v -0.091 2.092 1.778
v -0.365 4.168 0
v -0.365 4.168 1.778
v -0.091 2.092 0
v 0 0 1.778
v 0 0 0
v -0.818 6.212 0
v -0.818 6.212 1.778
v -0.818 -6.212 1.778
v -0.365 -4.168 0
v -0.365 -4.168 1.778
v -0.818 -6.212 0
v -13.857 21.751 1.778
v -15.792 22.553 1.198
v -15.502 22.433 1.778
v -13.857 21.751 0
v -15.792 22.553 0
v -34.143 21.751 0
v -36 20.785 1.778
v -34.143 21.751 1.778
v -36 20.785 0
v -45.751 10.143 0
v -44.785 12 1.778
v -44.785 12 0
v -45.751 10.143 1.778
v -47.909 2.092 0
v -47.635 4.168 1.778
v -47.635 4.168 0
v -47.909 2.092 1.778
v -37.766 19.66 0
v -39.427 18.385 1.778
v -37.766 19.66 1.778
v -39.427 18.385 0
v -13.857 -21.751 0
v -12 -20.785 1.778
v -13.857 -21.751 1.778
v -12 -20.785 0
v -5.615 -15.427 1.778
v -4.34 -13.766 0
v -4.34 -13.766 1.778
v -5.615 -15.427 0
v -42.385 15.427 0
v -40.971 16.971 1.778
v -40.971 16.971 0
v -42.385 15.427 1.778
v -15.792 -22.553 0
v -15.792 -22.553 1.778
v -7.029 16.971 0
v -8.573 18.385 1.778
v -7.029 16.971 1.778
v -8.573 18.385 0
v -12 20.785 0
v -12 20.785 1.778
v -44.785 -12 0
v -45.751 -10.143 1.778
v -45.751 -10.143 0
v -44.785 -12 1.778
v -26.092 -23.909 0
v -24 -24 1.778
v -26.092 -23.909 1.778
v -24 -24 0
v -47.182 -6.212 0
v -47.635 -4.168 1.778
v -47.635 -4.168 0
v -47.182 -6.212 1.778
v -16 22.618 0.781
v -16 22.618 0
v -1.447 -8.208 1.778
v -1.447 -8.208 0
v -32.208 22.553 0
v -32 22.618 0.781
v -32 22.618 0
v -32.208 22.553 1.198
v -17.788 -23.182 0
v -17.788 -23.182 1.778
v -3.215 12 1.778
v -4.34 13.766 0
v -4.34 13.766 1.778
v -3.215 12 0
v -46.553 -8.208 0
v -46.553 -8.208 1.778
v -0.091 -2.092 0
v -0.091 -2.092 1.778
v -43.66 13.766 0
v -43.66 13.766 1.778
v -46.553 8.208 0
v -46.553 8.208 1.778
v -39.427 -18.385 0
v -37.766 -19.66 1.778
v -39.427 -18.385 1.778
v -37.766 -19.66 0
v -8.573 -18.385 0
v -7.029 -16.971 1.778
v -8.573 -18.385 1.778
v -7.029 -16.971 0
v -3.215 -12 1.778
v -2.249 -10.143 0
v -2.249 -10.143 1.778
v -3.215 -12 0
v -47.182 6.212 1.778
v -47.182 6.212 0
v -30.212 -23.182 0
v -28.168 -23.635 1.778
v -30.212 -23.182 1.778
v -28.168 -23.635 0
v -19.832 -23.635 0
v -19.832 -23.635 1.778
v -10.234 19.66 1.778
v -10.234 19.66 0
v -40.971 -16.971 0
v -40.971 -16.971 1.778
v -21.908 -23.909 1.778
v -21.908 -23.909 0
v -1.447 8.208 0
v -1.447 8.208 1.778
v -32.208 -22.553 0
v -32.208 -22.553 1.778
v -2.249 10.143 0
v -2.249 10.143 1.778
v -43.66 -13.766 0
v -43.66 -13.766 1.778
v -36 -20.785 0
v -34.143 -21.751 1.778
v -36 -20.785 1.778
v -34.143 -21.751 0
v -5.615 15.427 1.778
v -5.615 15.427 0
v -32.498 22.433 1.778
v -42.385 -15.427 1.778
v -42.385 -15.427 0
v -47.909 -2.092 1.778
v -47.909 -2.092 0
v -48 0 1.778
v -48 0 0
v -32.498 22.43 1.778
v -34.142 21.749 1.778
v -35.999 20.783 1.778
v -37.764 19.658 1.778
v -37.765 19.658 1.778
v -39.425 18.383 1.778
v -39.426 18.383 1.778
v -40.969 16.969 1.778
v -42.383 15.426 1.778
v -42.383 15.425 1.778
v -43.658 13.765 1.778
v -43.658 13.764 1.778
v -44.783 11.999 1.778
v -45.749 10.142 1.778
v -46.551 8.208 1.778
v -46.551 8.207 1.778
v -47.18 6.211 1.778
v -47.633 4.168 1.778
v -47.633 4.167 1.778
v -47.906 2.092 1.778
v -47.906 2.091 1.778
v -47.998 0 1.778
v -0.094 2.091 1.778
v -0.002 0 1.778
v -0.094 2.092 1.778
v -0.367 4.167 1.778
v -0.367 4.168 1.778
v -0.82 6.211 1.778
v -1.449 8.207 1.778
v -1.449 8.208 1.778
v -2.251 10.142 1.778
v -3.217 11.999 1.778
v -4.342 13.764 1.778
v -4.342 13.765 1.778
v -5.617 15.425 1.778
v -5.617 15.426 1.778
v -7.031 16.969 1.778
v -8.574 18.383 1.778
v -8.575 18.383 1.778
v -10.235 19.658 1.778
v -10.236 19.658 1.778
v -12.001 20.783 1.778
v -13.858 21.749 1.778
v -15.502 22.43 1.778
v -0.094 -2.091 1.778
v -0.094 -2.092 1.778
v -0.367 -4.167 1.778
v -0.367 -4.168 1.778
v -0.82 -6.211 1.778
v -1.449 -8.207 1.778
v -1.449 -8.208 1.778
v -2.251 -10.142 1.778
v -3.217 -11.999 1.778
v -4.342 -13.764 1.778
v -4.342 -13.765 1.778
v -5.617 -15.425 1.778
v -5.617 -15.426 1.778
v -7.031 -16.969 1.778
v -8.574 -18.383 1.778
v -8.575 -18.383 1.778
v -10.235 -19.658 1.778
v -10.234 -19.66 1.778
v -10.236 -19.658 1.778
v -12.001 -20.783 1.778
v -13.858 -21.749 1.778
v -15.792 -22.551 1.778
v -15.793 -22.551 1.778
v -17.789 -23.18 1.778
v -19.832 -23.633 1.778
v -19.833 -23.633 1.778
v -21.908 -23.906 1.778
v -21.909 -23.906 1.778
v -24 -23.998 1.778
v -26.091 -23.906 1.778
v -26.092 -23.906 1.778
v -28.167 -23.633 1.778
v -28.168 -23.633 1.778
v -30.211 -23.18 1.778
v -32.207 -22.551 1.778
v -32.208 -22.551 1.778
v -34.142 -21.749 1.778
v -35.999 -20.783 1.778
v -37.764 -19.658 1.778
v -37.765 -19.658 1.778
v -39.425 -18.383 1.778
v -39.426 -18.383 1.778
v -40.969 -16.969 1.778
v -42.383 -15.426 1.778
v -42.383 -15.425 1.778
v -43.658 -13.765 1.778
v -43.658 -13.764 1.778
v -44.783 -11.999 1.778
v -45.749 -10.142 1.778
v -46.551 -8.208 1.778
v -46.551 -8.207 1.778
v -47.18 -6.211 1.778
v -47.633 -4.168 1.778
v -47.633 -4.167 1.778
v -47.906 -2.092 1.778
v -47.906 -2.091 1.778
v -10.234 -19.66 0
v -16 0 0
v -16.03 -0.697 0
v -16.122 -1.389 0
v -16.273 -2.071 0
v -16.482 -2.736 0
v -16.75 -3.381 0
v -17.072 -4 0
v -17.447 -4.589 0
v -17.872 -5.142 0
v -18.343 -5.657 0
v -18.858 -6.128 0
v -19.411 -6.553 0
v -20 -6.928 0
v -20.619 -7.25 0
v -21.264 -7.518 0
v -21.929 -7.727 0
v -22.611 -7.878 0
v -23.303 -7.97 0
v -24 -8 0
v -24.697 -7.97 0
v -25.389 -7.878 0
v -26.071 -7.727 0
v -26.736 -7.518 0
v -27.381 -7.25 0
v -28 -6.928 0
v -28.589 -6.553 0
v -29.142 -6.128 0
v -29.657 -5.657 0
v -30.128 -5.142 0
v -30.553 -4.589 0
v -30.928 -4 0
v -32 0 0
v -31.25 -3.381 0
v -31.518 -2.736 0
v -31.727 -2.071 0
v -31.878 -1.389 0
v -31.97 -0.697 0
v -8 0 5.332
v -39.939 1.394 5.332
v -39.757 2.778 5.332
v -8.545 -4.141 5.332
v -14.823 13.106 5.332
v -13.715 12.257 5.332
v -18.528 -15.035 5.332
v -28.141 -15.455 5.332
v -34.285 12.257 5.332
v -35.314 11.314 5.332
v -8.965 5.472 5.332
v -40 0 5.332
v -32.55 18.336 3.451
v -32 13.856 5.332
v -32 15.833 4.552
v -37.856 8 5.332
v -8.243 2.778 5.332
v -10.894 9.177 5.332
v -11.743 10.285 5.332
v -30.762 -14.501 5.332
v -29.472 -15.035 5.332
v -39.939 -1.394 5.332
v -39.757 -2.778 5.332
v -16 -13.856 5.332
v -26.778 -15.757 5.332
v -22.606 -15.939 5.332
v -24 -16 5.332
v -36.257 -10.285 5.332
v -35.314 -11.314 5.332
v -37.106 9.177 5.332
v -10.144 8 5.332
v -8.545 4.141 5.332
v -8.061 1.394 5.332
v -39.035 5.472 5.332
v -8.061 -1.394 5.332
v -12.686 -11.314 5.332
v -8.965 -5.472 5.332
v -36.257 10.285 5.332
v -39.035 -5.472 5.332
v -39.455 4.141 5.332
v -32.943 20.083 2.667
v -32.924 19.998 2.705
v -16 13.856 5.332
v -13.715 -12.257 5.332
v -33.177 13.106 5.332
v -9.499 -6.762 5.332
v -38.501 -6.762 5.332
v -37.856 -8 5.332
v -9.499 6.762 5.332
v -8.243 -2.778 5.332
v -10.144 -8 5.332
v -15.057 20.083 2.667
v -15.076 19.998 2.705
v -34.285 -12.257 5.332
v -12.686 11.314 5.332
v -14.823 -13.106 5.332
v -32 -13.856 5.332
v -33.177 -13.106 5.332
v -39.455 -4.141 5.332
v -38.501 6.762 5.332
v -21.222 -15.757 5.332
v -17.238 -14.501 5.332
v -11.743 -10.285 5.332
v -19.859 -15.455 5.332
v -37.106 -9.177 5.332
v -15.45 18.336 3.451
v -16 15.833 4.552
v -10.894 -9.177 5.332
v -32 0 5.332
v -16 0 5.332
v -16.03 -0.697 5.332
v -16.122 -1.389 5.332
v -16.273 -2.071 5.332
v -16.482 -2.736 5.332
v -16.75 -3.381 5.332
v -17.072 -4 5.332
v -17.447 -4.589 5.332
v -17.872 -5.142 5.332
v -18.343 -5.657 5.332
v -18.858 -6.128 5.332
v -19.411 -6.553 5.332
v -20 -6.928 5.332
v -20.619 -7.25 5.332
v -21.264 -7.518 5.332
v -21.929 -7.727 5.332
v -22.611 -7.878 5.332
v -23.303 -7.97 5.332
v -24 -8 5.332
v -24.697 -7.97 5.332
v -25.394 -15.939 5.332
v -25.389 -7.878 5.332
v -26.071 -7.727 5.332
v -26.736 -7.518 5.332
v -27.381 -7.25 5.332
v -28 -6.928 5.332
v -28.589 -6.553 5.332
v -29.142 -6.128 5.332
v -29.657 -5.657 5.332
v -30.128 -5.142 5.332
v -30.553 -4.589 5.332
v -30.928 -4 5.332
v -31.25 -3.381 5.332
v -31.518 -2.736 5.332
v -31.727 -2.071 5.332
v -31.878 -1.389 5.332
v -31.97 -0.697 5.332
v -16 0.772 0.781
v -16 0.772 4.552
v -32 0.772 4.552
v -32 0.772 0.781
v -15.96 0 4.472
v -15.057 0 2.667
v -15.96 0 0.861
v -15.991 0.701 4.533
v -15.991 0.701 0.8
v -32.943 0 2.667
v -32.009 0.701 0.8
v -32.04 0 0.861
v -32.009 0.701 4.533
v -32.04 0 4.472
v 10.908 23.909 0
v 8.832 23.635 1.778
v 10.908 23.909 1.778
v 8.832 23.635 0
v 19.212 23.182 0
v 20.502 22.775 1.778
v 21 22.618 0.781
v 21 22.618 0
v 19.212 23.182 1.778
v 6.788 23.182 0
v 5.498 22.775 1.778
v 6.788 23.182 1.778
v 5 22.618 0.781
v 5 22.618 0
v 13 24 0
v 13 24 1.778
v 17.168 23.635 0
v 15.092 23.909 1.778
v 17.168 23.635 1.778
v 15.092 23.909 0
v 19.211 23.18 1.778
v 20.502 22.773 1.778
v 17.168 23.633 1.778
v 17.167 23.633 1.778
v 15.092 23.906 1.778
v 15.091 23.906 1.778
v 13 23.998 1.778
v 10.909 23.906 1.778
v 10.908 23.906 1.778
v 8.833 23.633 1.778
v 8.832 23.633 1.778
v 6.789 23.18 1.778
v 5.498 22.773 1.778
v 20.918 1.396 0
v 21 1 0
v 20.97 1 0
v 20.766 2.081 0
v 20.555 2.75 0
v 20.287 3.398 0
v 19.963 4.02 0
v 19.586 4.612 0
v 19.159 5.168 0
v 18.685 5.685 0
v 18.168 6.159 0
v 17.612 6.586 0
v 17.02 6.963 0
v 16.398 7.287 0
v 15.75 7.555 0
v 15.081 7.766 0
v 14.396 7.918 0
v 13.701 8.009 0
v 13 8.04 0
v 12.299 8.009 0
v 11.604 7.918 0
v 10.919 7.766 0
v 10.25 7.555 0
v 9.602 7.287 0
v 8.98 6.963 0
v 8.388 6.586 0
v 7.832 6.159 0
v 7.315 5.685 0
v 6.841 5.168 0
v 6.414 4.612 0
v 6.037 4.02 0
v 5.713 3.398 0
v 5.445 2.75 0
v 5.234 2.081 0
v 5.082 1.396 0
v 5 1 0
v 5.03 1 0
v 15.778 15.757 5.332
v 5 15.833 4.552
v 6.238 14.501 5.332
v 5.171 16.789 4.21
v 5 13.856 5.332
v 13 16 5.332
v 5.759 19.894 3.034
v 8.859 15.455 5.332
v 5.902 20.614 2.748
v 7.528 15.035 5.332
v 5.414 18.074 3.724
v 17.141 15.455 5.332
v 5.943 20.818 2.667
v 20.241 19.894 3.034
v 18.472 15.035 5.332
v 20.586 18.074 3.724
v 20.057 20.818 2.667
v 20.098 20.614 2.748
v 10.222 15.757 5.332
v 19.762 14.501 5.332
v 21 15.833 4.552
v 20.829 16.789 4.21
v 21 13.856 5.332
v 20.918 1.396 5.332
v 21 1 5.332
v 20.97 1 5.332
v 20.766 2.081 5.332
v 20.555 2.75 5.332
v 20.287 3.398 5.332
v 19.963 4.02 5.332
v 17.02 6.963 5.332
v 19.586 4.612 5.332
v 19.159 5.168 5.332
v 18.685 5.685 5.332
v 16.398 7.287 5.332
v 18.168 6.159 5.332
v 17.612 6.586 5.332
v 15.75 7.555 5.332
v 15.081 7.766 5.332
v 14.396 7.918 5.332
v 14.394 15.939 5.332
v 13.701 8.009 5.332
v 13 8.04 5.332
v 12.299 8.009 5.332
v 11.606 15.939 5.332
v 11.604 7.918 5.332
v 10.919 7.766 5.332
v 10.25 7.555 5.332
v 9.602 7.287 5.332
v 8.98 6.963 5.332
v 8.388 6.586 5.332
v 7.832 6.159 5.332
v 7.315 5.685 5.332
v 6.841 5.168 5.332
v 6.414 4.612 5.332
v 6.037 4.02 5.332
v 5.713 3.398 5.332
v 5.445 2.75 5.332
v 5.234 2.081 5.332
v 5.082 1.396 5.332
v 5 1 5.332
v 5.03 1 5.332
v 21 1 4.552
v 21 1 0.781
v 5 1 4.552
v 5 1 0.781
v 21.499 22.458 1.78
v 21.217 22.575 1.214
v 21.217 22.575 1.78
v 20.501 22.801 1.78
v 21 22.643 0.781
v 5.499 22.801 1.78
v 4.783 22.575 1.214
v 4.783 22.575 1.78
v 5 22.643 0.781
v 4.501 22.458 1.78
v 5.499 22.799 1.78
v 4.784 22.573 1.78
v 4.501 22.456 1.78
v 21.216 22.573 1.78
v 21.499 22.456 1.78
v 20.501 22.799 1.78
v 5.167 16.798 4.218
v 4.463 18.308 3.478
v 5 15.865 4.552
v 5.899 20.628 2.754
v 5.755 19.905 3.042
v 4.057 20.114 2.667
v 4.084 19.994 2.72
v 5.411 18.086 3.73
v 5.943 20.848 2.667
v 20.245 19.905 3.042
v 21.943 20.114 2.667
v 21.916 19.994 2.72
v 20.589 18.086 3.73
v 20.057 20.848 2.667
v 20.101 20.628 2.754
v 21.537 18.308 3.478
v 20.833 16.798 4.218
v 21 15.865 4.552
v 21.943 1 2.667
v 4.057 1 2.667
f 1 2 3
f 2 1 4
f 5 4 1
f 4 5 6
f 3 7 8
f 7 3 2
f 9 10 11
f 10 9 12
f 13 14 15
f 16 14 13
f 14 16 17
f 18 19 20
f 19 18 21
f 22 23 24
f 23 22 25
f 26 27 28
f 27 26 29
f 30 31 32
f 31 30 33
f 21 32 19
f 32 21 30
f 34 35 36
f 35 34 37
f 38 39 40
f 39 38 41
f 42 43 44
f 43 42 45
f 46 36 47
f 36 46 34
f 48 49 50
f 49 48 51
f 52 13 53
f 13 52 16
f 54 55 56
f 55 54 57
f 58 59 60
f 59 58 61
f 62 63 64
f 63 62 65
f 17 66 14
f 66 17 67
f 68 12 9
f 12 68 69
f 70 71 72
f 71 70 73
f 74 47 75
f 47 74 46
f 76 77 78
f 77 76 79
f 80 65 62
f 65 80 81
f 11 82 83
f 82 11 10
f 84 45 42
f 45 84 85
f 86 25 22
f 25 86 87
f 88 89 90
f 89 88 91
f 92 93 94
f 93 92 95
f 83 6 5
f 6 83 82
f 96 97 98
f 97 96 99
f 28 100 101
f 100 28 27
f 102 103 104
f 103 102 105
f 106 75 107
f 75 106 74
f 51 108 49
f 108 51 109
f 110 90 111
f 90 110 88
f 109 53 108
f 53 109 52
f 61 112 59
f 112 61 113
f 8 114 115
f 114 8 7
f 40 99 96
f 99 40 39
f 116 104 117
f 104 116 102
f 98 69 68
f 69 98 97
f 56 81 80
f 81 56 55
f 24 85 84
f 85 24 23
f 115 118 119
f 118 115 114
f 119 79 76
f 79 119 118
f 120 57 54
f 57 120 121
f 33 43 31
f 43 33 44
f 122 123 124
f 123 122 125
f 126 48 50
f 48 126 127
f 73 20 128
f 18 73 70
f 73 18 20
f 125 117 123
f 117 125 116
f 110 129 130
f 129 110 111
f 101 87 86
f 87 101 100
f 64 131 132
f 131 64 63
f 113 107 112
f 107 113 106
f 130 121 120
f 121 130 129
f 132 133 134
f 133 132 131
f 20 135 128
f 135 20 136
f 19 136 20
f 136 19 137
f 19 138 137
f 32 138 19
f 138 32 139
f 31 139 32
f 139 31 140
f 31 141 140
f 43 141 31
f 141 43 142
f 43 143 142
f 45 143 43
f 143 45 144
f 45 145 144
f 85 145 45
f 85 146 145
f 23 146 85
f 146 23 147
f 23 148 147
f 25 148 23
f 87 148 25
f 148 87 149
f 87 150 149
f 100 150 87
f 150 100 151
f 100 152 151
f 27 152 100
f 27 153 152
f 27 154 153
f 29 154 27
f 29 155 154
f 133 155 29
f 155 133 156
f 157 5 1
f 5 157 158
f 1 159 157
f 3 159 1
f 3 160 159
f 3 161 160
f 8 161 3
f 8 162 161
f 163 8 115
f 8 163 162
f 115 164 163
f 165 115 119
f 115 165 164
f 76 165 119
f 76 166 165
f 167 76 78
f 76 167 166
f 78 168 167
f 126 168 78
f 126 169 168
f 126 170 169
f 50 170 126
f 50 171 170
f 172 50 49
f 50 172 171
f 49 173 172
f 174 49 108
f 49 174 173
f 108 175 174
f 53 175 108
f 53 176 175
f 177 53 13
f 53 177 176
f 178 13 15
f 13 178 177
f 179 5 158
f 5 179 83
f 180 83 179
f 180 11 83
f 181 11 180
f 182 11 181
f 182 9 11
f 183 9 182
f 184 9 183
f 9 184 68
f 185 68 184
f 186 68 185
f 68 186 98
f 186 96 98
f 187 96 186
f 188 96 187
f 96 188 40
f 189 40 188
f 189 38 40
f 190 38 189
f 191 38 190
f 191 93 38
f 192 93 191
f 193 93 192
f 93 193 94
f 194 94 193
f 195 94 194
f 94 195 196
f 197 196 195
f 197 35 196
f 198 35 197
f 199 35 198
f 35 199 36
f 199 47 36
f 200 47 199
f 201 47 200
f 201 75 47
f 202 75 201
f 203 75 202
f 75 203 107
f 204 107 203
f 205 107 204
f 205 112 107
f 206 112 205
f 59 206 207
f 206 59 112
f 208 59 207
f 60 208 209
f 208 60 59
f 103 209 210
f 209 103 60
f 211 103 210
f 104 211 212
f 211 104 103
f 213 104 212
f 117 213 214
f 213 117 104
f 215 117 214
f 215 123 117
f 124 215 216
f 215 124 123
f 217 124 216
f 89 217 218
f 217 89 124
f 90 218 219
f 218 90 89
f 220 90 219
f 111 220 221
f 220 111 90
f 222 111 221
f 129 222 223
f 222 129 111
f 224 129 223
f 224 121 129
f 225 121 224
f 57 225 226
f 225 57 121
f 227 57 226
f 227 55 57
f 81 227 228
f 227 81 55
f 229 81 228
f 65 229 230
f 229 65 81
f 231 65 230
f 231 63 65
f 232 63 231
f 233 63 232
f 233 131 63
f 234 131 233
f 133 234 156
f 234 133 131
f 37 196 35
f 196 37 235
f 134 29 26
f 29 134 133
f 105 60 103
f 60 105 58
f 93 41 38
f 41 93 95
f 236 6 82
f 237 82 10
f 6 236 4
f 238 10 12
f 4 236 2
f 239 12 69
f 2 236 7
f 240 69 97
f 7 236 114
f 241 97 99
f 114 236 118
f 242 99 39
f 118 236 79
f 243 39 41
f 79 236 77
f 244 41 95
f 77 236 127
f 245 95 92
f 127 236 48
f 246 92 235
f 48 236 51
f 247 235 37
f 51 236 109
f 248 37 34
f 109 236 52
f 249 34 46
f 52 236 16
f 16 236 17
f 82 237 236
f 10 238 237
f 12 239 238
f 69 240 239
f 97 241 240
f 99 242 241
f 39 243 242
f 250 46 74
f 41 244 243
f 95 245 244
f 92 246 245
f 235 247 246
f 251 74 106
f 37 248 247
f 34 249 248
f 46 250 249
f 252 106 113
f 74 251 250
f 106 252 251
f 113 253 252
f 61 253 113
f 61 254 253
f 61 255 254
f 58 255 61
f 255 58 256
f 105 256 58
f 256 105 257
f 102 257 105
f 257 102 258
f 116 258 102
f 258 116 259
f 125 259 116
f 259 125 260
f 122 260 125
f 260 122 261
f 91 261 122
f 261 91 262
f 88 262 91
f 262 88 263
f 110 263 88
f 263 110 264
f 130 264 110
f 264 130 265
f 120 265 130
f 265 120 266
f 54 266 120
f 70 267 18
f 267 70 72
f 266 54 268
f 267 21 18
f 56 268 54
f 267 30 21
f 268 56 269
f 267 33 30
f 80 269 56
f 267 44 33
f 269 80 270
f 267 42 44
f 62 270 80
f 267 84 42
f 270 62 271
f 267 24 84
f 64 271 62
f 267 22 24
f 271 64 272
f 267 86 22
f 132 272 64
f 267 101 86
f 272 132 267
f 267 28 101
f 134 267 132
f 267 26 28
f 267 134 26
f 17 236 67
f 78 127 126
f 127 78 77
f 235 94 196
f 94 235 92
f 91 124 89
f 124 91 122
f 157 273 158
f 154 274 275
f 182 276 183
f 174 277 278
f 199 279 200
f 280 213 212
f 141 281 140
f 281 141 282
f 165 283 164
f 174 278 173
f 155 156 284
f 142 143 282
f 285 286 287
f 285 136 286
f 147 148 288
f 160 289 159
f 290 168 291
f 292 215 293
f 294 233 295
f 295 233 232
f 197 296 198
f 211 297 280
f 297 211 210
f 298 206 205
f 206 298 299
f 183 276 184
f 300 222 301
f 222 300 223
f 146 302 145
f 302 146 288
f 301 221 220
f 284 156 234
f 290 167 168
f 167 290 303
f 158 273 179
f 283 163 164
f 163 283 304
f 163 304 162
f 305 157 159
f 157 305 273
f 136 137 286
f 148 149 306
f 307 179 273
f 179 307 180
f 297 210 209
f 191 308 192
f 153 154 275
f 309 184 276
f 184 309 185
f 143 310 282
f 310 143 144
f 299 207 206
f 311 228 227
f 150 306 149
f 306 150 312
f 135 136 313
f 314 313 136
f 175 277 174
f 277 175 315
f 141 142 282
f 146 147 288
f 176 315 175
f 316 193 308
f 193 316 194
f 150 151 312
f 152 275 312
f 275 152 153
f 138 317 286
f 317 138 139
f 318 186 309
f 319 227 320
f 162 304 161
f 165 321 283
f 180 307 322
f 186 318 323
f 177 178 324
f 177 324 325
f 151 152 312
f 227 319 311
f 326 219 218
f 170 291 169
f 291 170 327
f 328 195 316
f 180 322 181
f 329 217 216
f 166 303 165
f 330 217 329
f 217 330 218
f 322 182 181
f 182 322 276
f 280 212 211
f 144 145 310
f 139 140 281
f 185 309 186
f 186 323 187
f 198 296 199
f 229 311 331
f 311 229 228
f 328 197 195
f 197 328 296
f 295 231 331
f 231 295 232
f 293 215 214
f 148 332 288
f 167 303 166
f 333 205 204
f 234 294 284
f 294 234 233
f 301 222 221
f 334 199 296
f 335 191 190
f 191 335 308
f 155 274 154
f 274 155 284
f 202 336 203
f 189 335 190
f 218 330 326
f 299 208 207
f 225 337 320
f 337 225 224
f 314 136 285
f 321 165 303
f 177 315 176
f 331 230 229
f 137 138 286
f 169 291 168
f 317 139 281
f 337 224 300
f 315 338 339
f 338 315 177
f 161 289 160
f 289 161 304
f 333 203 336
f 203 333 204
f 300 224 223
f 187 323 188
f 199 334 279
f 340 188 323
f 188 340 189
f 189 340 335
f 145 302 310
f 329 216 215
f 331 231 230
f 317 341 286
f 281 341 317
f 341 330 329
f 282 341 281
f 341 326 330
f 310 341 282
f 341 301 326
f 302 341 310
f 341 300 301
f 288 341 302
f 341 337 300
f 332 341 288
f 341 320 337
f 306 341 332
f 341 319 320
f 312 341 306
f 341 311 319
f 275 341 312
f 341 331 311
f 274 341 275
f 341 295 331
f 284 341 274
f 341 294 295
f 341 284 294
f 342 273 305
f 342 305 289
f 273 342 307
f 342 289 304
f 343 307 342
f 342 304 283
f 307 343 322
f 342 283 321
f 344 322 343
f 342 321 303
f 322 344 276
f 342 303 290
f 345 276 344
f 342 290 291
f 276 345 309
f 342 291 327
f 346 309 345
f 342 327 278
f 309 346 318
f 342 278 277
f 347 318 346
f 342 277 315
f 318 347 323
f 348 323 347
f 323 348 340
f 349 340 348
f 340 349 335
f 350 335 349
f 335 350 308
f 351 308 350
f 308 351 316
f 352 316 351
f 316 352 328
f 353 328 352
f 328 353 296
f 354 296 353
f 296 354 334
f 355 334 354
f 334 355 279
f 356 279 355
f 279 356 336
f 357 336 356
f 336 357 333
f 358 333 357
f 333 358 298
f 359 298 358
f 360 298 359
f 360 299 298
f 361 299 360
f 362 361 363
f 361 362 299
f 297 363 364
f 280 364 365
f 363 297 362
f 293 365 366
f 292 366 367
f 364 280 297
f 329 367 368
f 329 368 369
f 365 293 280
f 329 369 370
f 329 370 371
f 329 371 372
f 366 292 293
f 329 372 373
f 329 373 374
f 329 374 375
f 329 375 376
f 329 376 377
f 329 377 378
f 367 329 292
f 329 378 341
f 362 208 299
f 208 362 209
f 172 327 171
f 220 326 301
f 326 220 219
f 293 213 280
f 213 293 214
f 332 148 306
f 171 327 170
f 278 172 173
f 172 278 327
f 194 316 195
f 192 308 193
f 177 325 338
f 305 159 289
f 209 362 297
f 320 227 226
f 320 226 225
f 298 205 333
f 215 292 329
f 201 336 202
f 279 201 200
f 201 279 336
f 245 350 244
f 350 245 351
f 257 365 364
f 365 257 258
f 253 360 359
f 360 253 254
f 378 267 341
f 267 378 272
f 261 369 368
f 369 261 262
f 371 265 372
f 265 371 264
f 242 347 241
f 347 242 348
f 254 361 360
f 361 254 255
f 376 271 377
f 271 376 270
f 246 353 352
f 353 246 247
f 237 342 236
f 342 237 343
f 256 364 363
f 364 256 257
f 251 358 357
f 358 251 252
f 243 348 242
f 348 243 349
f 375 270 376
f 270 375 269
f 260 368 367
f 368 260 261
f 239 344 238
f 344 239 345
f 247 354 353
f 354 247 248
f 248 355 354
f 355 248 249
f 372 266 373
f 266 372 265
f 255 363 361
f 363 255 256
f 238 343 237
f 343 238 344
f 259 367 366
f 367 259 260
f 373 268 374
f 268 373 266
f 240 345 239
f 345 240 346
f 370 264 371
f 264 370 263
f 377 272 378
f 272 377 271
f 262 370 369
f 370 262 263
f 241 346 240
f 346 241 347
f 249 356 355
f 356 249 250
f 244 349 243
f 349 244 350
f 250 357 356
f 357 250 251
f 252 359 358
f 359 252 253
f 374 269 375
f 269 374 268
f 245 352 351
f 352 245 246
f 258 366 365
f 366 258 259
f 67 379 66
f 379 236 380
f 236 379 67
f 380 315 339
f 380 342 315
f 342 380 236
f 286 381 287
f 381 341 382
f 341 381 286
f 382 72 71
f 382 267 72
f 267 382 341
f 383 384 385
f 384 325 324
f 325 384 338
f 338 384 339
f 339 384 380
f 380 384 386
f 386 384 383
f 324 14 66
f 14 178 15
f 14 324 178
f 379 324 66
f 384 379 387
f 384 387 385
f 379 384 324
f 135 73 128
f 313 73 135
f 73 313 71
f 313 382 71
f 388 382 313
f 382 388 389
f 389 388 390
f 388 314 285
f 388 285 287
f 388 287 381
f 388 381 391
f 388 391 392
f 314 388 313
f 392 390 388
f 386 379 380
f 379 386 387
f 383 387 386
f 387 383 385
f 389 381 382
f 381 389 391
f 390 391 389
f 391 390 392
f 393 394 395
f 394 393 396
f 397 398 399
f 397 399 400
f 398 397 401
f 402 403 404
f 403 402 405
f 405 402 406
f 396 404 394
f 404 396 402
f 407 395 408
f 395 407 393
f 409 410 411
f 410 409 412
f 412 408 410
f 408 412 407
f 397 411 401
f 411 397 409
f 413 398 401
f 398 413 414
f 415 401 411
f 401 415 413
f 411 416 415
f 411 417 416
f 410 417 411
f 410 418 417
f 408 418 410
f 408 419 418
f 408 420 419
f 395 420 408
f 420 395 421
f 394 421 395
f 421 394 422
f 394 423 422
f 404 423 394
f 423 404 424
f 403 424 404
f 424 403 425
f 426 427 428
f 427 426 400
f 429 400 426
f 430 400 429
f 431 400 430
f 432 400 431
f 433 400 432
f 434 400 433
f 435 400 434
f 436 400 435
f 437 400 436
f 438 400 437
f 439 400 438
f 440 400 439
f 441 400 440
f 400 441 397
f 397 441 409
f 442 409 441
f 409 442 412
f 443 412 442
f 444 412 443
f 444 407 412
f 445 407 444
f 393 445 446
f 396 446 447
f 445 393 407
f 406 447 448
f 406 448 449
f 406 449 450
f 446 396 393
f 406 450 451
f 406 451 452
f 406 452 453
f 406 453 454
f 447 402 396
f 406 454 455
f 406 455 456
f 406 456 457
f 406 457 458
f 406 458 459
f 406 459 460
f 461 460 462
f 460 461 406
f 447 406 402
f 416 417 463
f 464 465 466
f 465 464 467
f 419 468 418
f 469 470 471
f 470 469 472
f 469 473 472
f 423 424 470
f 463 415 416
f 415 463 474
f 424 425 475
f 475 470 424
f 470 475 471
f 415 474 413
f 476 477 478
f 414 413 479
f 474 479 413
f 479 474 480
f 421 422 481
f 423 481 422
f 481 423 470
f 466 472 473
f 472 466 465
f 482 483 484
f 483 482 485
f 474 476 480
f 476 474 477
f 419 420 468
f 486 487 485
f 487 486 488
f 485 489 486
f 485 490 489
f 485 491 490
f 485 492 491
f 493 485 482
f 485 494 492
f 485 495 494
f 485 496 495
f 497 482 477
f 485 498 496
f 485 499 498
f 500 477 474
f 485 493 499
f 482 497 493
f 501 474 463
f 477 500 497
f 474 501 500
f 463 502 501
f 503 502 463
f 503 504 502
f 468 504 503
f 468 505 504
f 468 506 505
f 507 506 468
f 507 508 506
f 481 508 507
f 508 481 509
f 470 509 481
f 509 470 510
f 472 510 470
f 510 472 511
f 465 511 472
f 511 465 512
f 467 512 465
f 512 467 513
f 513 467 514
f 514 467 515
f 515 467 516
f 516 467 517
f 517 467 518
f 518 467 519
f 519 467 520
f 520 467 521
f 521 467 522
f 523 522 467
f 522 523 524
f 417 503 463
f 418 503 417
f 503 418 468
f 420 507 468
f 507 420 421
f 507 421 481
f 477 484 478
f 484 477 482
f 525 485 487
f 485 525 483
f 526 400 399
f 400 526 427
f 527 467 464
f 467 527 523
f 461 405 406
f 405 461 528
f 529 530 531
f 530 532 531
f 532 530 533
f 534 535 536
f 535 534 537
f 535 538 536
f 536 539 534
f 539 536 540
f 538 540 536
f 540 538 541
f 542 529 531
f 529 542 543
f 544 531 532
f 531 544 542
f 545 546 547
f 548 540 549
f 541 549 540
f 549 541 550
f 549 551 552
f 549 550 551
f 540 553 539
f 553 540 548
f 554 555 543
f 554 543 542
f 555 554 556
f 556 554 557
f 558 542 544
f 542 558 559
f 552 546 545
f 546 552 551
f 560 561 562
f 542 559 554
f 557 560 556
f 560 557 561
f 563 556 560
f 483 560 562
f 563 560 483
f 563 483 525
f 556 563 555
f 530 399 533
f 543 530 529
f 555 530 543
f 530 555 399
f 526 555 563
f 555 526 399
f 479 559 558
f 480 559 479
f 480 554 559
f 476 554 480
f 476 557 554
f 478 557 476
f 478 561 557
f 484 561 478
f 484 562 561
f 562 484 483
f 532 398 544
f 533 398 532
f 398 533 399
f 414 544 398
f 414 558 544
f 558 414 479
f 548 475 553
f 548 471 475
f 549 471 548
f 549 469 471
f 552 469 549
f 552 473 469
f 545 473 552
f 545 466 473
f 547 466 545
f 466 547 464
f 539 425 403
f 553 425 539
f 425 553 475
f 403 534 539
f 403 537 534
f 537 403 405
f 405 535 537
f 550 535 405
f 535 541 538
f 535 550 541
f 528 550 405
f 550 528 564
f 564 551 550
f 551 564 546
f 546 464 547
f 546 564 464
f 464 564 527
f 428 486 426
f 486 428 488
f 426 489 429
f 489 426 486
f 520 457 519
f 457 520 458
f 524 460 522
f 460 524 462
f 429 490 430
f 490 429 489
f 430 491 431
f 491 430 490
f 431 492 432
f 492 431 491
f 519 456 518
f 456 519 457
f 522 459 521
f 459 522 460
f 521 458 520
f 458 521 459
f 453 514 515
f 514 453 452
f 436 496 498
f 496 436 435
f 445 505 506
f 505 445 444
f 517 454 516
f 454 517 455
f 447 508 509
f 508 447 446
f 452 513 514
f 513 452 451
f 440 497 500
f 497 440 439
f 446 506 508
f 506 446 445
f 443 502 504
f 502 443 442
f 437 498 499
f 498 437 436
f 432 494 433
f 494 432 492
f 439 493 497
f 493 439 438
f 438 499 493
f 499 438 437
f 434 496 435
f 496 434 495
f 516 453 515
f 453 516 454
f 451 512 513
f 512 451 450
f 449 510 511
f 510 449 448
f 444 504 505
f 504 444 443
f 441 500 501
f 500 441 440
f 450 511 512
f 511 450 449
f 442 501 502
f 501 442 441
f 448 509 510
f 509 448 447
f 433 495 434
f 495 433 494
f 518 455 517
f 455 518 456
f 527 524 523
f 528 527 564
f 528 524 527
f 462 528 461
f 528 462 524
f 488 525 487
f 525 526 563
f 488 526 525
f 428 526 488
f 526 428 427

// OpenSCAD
$fn=72; // Decent curves please.

tubeDiameter = 16;
tubeRadius = tubeDiameter/2;

coverDiameter = tubeDiameter*3;
coverRadius = coverDiameter/2;

coverHeight = tubeDiameter/3;

module base() {
    cylinder(d=coverDiameter, h=coverHeight/3);
    translate([0, 0, coverHeight/3-0.001])
        cylinder(coverHeight*(2/3), d1=coverDiameter, d2=coverDiameter*(2/3), true);
}

module tube() {
    cylinder(d=tubeDiameter, h=coverHeight);
}

module cutout() {
    tube();
    translate([-tubeRadius, 0, 0]) cube([tubeDiameter, coverRadius, coverHeight]);
}

module cover() {
    difference() {
        base();
        translate([0, 0, -coverHeight/2])
            scale([1, 1, 2])
                cutout();
    }
}

module sled() {
    intersection() {
        difference() {
            cutout();
            translate([0, 0, -coverHeight/2]) scale([1.005, 1.005, 2]) tube();
        }
        base();
    }
}

module nubsie() {
    translate([0, coverRadius/2, coverHeight/2])
        scale([0.5, 1, 1])
            rotate([0, 45, 0])
                cube([coverHeight/2, coverRadius, coverHeight/2], true);
}

module nubsies() {
    difference() {
        intersection() {
            scale([1.001, 1.001, 1.001])    
                base();
            union() {
                translate([tubeRadius, 0, 0]) nubsie();
                translate([-tubeRadius, 0, 0]) nubsie();
            }
        }
        scale([1.005, 1.005, 1]) tube();
    }
}

translate([-coverRadius, 0, 0]) difference() {
    cover();
    nubsies();
}

translate([tubeRadius+5, 0, 0]) difference() {
    union() {
        sled();
        nubsies();
    }
    translate([-tubeRadius-1, -tubeDiameter-1, 0])
        cube(tubeDiameter+2);
}
